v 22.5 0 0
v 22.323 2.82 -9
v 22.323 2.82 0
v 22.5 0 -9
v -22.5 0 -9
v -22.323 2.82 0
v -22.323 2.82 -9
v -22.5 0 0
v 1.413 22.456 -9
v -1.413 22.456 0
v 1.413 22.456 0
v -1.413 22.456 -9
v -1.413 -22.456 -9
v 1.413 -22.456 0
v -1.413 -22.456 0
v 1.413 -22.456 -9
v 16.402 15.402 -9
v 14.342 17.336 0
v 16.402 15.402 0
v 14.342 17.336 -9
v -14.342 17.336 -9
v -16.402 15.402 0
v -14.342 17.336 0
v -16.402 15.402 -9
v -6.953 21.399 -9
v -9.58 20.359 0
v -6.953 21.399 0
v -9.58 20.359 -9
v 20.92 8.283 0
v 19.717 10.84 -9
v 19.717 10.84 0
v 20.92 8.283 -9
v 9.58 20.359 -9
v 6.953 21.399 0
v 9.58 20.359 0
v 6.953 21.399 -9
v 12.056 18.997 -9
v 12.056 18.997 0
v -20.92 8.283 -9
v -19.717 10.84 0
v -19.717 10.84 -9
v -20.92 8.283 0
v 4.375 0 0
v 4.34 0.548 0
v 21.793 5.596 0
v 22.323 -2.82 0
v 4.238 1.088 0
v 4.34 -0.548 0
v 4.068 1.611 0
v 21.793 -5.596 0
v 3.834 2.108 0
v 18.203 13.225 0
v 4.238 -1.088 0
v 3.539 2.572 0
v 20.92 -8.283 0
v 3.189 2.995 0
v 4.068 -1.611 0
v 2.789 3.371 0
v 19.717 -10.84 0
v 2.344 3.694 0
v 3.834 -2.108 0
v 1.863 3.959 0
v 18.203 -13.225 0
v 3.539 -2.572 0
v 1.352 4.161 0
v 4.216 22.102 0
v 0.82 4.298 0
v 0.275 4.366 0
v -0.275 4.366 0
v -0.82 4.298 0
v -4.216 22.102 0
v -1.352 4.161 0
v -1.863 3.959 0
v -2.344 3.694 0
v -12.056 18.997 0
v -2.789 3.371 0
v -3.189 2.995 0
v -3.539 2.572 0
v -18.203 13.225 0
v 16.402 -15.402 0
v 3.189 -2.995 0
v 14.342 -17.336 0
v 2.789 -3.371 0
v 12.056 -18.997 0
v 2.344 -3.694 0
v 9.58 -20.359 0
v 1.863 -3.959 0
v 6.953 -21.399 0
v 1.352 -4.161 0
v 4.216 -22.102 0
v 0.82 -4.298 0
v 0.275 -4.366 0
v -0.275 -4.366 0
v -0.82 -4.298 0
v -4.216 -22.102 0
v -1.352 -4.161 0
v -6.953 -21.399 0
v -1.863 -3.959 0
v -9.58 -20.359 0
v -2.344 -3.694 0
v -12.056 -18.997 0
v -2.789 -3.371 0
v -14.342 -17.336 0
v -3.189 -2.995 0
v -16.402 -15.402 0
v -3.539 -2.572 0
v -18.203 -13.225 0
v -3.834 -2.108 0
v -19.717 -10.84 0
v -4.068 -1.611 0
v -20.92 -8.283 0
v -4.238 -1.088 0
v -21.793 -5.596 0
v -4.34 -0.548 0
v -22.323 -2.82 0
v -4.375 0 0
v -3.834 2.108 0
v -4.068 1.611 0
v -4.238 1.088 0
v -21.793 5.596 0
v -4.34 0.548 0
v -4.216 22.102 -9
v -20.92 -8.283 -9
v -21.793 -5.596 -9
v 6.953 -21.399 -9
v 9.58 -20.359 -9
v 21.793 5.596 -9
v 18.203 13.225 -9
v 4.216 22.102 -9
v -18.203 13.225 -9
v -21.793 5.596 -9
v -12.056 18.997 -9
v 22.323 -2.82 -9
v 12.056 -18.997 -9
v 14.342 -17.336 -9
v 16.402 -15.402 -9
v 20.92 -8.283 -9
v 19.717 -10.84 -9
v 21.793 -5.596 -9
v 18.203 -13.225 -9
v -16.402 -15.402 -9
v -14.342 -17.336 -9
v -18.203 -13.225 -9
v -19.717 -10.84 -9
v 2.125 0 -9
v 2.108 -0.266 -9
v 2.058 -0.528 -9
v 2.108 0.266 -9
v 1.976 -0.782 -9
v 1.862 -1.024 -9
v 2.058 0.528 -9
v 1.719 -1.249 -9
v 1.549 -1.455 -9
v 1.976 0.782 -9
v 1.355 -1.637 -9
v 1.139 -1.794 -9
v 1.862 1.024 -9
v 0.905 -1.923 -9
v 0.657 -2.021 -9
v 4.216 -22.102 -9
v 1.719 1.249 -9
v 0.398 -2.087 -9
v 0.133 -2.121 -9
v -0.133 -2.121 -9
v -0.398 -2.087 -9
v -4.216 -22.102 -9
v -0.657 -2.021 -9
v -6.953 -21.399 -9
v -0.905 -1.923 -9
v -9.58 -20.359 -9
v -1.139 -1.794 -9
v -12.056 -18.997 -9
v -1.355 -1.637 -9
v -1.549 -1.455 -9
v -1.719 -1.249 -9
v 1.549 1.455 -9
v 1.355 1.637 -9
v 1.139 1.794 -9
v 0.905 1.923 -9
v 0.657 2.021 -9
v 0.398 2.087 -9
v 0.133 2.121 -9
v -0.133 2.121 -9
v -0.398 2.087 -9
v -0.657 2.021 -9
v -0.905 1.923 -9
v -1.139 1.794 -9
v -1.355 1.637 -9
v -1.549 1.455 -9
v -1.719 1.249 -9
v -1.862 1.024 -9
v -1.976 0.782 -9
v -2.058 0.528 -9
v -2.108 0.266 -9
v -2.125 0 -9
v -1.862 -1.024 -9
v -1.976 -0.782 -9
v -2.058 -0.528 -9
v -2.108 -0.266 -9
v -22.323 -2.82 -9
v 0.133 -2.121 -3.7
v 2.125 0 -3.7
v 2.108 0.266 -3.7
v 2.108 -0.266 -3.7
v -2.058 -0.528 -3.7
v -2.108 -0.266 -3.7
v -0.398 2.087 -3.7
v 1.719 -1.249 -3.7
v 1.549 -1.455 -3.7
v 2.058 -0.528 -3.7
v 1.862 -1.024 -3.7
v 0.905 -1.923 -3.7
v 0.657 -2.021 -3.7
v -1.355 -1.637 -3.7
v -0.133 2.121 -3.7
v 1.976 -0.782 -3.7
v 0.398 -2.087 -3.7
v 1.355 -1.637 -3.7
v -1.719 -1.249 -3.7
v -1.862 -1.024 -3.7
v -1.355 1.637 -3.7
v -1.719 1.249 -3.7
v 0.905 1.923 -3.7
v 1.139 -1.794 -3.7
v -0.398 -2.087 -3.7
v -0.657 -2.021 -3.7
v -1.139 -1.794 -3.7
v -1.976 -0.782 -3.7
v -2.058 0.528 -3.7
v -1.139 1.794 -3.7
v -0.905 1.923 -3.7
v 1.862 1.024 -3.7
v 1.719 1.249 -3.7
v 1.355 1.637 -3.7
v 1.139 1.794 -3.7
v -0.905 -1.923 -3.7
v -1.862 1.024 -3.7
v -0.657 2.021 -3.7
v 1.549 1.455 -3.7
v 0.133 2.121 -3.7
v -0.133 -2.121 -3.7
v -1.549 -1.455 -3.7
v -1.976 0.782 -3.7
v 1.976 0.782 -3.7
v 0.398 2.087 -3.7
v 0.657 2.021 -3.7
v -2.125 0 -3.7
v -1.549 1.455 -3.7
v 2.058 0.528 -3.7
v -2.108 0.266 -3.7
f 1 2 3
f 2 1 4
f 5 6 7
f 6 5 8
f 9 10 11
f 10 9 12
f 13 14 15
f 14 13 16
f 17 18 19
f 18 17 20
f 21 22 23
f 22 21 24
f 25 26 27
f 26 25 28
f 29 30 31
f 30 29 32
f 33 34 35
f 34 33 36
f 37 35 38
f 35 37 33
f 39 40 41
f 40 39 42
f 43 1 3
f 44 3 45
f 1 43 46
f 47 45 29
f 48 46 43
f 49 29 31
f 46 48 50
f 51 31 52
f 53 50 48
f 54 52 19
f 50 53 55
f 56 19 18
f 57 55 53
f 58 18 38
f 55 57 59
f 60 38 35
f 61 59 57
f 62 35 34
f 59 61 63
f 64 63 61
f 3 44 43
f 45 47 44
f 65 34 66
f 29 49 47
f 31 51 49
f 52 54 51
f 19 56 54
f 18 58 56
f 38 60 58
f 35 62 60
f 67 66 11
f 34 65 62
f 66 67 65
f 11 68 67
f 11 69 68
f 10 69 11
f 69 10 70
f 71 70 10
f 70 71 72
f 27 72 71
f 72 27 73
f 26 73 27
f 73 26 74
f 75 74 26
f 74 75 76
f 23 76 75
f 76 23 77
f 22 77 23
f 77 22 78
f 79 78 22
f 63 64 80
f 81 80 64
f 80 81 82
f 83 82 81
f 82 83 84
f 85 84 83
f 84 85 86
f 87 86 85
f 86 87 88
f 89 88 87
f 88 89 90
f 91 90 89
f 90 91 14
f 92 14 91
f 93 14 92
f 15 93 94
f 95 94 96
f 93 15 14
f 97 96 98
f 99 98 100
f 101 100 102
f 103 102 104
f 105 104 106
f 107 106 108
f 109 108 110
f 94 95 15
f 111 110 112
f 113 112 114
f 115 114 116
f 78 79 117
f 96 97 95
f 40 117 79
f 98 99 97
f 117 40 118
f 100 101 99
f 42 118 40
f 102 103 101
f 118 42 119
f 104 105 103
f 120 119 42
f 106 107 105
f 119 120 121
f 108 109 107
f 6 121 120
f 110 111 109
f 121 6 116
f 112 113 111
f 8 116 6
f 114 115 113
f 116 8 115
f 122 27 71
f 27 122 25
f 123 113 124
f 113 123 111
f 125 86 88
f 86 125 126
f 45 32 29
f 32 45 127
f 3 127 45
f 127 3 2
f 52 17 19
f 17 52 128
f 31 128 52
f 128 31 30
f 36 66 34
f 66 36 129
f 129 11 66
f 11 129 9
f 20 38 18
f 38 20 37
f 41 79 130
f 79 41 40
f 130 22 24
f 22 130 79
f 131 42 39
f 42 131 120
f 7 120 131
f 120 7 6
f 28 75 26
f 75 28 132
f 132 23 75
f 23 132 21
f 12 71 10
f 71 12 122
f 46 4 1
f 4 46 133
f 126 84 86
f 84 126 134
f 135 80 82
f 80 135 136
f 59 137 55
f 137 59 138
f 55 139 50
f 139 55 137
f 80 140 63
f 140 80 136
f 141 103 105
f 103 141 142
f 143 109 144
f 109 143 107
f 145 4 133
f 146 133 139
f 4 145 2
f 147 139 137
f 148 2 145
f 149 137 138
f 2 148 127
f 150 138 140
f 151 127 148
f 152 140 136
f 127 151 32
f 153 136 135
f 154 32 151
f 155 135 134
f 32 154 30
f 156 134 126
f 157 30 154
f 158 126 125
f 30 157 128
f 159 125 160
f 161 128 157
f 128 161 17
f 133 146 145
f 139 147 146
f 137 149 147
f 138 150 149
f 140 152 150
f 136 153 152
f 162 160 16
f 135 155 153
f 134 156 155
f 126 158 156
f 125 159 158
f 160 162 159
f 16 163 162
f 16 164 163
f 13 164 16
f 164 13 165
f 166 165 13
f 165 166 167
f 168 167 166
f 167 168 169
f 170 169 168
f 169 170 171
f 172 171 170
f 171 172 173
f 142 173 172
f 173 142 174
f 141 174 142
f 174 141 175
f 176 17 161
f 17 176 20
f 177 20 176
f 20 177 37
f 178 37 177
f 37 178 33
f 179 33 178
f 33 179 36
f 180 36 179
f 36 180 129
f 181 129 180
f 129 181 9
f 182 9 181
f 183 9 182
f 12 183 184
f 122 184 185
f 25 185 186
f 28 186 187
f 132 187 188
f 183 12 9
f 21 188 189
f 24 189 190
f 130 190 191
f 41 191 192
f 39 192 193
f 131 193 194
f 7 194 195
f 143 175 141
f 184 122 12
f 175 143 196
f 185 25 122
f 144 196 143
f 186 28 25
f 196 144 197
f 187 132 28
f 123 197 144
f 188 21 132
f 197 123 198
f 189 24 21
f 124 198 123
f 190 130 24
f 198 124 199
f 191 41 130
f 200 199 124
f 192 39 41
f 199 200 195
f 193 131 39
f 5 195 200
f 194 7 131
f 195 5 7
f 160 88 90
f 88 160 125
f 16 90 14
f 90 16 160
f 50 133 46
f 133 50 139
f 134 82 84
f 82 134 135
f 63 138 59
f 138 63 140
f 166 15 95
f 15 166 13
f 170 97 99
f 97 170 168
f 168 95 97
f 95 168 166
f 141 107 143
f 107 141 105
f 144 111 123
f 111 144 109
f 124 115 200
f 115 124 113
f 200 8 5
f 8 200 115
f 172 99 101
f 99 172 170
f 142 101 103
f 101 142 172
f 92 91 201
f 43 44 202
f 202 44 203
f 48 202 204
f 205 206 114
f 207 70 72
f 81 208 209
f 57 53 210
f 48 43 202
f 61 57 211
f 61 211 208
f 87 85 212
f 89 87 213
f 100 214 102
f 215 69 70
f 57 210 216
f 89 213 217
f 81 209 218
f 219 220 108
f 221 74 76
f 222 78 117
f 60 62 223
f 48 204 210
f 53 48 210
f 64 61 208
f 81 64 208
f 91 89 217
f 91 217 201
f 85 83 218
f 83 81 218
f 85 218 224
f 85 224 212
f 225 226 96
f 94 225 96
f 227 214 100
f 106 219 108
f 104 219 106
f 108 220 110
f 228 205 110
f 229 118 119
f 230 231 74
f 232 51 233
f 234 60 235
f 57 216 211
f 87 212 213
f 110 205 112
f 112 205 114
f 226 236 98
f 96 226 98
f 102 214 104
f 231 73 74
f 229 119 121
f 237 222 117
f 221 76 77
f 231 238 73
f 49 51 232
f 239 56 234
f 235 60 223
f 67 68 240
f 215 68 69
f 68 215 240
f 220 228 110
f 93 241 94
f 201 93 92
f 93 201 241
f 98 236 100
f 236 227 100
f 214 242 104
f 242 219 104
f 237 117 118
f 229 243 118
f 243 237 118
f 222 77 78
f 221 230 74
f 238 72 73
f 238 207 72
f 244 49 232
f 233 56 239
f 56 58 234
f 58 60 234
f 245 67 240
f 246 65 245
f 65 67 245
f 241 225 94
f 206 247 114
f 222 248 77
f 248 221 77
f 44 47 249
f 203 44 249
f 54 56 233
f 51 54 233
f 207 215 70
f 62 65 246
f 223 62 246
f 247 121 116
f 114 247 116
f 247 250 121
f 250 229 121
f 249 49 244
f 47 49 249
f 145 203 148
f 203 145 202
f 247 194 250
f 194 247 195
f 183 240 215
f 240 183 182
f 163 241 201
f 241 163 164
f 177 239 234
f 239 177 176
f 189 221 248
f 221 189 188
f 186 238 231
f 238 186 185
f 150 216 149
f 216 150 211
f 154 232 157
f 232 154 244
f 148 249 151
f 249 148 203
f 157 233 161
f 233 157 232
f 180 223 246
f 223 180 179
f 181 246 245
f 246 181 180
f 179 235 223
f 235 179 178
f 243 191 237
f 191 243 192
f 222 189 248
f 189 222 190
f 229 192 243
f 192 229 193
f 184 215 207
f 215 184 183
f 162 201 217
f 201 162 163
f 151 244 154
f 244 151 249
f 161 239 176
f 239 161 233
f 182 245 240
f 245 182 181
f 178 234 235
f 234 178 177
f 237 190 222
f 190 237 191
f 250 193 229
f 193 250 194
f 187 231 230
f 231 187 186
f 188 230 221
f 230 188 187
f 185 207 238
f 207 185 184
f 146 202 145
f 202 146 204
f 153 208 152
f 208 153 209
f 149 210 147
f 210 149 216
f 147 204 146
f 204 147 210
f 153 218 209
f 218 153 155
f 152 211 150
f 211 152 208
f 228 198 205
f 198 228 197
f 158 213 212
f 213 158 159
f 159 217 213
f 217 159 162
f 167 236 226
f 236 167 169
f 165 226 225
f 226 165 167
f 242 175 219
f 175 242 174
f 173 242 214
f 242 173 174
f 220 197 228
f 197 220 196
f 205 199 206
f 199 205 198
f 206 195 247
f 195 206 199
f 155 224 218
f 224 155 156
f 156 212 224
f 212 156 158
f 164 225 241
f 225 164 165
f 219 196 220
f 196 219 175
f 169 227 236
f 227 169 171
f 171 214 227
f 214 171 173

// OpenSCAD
$fn = 50;


difference() {
	union() {
		translate(v = [0, 0, -9.0000000000]) {
			cylinder(h = 9, r = 22.5000000000);
		}
		translate(v = [0, 0, -9.0000000000]) {
			cylinder(h = 9, r = 2.8750000000);
		}
	}
	union() {
		translate(v = [0, 0, 0]) {
			rotate(a = [0, 0, 0]) {
				difference() {
					union() {
						translate(v = [0, 0, -9.0000000000]) {
							cylinder(h = 9, r = 2.0000000000);
						}
						translate(v = [0, 0, -3.7000000000]) {
							cylinder(h = 3.7000000000, r1 = 2.1250000000, r2 = 4.3750000000);
						}
						translate(v = [0, 0, -9.0000000000]) {
							cylinder(h = 9, r = 2.1250000000);
						}
						translate(v = [0, 0, -9.0000000000]) {
							cylinder(h = 9, r = 2.0000000000);
						}
					}
					union();
				}
			}
		}
	}
}
